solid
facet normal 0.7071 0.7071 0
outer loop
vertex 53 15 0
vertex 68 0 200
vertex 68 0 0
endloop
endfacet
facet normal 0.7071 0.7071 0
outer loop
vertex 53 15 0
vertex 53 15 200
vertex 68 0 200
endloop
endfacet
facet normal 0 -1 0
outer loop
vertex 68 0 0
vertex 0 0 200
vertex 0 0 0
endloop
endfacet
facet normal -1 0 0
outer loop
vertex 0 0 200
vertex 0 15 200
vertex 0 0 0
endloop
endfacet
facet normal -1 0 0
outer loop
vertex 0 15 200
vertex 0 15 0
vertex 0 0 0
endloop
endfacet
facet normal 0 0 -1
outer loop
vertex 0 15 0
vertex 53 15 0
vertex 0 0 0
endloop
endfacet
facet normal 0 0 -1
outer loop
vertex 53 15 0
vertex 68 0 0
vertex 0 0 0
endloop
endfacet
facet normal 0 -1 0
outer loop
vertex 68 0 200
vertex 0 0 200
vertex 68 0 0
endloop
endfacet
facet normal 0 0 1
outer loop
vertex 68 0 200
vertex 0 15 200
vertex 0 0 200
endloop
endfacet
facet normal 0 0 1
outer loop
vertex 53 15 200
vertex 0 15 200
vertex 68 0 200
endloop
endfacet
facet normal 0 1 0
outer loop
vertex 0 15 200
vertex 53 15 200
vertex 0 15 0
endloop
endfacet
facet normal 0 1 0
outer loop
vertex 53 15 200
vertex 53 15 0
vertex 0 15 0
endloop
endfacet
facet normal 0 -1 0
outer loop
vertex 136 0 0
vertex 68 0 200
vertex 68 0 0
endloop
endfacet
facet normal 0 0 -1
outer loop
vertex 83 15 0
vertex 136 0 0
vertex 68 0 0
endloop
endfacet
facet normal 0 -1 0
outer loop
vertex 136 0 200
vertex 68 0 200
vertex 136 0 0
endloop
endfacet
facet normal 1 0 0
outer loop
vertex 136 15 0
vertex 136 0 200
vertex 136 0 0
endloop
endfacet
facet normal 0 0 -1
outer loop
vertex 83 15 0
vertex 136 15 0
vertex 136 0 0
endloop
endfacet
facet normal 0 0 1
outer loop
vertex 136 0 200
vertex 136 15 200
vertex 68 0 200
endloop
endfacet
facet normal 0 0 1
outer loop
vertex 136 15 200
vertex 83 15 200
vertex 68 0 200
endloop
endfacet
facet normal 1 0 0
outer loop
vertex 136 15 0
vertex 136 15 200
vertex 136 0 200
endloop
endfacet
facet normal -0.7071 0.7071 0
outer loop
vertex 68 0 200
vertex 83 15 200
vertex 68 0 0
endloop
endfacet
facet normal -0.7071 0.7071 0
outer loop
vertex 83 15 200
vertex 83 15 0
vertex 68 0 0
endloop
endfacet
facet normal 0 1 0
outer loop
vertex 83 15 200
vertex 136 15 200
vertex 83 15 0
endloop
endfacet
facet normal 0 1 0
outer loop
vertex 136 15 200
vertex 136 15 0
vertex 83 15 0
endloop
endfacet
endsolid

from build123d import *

# Parameters (mm, degrees)
BOSS_EXTRUDE1_DEPTH   = 200
BOSS_EXTRUDE1_2_DEPTH = 200


with BuildPart() as part:
    # Sketch1 → Boss-Extrude1 (new body)
    with BuildSketch(Plane.XY):
        Polygon((0, 15), (0, 0), (68, 0), (53, 15), align=None)
    extrude(amount=BOSS_EXTRUDE1_DEPTH)


with BuildPart() as body_2:
    # Sketch1 → Boss-Extrude1 2 (new body)
    with BuildSketch(Plane.XY):
        Polygon((83, 15), (68, 0), (136, 0), (136, 15), align=None)
    extrude(amount=BOSS_EXTRUDE1_2_DEPTH)


solid = Compound([part.part, body_2.part])
